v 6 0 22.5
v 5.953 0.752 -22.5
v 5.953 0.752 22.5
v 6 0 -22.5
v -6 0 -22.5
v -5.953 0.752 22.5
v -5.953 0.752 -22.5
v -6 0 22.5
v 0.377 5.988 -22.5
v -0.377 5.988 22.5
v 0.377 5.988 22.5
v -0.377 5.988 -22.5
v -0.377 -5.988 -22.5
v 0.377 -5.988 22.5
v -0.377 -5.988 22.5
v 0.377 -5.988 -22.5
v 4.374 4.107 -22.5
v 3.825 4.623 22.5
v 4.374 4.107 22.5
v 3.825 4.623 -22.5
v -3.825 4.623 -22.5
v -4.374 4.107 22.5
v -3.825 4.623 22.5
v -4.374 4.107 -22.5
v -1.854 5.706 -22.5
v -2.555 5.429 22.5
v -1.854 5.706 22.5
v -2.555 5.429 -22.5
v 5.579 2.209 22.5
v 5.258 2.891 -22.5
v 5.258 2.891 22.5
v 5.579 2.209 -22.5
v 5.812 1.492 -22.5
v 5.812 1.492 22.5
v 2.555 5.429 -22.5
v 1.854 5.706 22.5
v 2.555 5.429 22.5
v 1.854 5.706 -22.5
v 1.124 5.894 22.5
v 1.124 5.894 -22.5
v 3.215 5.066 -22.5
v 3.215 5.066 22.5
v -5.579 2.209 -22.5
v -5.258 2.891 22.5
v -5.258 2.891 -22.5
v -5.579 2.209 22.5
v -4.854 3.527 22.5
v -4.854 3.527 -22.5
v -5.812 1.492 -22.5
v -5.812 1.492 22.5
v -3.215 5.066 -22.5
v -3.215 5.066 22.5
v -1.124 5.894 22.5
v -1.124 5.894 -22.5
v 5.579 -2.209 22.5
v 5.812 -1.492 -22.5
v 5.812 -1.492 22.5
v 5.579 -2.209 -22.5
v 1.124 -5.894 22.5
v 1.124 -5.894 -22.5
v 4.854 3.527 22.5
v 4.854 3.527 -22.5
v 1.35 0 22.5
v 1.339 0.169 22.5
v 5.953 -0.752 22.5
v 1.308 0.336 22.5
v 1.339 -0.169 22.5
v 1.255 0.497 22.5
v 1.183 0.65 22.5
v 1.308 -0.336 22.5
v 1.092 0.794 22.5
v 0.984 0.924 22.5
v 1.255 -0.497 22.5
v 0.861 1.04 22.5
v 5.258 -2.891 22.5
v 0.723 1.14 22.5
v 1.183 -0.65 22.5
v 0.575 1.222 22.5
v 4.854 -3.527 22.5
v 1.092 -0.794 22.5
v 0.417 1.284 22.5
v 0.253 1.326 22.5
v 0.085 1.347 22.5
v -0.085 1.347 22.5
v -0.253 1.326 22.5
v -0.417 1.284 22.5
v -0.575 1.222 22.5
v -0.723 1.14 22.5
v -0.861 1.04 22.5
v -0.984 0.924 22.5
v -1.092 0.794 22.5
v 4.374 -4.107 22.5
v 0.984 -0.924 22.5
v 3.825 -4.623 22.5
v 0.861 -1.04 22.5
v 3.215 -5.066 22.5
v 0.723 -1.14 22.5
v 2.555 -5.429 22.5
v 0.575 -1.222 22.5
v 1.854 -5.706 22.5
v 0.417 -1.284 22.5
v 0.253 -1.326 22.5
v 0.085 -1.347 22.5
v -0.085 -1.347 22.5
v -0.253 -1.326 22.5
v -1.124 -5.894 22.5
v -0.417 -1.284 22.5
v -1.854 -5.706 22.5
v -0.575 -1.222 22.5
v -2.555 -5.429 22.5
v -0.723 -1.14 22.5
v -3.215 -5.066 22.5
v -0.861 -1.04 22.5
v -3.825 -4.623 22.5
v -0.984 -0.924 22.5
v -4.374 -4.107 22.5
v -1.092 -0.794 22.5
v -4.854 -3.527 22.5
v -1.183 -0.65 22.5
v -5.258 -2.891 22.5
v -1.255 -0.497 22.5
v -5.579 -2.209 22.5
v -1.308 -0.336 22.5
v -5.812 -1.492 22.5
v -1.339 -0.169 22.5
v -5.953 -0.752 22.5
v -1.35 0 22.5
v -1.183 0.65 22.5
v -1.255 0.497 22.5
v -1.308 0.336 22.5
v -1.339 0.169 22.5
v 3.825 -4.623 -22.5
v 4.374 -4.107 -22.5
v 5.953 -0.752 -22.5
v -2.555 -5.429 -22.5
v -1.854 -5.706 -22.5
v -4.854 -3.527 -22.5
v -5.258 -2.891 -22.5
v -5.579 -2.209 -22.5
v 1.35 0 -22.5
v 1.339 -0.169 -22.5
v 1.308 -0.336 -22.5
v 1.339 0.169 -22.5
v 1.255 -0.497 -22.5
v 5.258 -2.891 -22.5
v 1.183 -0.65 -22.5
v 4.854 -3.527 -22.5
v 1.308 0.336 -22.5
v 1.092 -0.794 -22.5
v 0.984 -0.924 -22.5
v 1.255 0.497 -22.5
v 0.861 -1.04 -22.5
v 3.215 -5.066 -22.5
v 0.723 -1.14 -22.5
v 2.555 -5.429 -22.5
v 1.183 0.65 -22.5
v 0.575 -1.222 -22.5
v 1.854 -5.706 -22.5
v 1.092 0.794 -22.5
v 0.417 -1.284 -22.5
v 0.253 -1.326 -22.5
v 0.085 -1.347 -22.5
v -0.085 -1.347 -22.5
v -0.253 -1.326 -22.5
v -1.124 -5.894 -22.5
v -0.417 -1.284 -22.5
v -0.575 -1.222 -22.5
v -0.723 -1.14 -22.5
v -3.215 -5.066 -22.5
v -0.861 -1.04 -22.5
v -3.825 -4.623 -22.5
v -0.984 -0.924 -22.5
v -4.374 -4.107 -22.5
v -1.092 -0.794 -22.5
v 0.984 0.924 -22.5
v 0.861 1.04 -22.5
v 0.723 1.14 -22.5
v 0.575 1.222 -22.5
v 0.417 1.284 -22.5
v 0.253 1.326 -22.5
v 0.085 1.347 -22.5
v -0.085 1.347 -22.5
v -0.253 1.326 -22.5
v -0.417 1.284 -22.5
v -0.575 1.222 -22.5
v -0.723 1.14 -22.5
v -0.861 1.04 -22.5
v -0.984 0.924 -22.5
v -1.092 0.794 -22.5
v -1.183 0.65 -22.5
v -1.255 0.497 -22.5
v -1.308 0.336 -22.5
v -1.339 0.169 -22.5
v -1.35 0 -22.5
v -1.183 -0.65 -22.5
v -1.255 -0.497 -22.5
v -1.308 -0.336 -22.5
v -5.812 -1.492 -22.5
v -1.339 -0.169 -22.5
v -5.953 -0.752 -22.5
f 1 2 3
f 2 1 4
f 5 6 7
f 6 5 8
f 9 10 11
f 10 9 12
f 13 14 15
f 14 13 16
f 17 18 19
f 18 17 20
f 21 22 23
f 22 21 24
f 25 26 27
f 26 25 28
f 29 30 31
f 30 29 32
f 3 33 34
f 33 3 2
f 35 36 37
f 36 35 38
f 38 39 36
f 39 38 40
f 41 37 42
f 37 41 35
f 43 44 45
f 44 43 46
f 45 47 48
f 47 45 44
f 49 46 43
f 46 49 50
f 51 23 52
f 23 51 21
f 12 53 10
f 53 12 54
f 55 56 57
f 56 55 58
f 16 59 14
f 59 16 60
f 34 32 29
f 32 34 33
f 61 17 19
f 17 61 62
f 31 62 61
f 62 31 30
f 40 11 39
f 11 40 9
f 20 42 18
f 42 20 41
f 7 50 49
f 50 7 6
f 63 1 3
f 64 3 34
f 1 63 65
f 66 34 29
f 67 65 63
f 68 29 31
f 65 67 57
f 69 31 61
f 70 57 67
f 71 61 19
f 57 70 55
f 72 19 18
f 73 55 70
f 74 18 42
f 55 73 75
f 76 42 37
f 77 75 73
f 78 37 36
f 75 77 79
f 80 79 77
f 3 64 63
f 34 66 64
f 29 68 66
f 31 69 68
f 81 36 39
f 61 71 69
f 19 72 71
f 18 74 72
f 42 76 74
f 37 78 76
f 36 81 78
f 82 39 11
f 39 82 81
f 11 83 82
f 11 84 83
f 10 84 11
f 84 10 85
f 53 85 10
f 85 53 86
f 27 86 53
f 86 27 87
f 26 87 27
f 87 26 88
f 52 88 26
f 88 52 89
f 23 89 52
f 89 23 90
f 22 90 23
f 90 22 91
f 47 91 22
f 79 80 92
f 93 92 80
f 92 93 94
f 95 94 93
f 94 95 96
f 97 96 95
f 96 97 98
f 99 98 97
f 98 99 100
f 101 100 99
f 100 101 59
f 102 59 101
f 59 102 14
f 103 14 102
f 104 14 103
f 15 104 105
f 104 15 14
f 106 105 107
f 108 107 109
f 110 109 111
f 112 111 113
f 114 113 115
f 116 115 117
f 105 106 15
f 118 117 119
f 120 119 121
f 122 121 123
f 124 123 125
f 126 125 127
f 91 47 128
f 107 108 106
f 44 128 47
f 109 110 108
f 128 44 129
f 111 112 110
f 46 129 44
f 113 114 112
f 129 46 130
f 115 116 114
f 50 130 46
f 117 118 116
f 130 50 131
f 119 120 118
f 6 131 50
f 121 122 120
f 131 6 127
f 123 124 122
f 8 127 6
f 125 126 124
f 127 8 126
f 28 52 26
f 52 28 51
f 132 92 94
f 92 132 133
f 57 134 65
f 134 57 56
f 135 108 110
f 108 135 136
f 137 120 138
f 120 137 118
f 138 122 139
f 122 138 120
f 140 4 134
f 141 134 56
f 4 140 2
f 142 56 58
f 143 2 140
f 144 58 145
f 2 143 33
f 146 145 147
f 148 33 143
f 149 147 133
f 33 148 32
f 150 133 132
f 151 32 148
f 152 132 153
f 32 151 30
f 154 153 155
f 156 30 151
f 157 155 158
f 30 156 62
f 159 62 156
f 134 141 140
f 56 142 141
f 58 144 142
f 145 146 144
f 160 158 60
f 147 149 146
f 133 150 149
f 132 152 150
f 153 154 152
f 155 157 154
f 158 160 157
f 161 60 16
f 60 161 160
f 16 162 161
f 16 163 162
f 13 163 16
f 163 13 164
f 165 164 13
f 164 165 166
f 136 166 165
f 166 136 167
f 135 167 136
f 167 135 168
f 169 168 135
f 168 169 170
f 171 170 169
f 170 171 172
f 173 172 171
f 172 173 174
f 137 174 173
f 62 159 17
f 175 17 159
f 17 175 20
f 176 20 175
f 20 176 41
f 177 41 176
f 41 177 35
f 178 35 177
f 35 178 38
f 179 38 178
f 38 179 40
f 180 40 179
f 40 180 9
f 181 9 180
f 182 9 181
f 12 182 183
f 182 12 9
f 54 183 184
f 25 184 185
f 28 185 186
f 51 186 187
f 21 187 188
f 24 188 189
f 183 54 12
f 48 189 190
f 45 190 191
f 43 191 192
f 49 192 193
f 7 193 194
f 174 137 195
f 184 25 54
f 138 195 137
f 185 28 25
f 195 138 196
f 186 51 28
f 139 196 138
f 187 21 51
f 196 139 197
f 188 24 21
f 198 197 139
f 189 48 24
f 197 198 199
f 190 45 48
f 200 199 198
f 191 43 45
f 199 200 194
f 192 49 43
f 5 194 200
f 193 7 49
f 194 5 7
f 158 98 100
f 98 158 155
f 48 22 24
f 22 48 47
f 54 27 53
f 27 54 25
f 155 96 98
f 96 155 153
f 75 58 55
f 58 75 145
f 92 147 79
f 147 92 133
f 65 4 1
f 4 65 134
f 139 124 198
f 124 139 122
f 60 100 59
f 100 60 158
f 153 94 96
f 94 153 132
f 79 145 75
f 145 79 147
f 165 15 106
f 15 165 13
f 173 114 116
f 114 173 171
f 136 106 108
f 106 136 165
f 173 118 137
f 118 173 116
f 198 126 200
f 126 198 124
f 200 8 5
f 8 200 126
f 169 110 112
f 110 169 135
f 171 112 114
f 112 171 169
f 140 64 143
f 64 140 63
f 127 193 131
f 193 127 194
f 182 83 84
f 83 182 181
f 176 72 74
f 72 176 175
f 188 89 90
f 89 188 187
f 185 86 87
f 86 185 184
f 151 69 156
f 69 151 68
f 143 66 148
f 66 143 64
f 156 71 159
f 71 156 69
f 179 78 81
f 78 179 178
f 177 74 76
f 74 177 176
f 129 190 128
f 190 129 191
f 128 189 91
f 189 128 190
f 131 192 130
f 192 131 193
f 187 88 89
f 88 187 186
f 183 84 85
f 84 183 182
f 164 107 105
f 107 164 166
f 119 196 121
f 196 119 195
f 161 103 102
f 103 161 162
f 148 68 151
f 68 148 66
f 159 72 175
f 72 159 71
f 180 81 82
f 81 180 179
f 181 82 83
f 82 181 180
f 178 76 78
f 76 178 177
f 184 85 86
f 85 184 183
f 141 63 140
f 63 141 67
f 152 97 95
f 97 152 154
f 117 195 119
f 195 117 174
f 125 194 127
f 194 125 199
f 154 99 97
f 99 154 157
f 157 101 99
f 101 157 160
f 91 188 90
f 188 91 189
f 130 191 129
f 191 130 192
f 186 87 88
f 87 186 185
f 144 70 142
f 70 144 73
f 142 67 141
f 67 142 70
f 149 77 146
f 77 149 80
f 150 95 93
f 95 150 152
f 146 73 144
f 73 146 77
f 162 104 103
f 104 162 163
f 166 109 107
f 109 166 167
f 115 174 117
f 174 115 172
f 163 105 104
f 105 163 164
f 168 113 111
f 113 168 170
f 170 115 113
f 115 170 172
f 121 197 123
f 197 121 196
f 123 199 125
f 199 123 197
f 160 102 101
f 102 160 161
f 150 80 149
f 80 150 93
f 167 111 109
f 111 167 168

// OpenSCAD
$fn = 50;


difference() {
	union() {
		translate(v = [0, 0, -22.5000000000]) {
			cylinder(h = 45, r = 6.0000000000);
		}
	}
	union() {
		translate(v = [0, 0, -100.0000000000]) {
			cylinder(h = 200, r = 1.3500000000);
		}
	}
}
